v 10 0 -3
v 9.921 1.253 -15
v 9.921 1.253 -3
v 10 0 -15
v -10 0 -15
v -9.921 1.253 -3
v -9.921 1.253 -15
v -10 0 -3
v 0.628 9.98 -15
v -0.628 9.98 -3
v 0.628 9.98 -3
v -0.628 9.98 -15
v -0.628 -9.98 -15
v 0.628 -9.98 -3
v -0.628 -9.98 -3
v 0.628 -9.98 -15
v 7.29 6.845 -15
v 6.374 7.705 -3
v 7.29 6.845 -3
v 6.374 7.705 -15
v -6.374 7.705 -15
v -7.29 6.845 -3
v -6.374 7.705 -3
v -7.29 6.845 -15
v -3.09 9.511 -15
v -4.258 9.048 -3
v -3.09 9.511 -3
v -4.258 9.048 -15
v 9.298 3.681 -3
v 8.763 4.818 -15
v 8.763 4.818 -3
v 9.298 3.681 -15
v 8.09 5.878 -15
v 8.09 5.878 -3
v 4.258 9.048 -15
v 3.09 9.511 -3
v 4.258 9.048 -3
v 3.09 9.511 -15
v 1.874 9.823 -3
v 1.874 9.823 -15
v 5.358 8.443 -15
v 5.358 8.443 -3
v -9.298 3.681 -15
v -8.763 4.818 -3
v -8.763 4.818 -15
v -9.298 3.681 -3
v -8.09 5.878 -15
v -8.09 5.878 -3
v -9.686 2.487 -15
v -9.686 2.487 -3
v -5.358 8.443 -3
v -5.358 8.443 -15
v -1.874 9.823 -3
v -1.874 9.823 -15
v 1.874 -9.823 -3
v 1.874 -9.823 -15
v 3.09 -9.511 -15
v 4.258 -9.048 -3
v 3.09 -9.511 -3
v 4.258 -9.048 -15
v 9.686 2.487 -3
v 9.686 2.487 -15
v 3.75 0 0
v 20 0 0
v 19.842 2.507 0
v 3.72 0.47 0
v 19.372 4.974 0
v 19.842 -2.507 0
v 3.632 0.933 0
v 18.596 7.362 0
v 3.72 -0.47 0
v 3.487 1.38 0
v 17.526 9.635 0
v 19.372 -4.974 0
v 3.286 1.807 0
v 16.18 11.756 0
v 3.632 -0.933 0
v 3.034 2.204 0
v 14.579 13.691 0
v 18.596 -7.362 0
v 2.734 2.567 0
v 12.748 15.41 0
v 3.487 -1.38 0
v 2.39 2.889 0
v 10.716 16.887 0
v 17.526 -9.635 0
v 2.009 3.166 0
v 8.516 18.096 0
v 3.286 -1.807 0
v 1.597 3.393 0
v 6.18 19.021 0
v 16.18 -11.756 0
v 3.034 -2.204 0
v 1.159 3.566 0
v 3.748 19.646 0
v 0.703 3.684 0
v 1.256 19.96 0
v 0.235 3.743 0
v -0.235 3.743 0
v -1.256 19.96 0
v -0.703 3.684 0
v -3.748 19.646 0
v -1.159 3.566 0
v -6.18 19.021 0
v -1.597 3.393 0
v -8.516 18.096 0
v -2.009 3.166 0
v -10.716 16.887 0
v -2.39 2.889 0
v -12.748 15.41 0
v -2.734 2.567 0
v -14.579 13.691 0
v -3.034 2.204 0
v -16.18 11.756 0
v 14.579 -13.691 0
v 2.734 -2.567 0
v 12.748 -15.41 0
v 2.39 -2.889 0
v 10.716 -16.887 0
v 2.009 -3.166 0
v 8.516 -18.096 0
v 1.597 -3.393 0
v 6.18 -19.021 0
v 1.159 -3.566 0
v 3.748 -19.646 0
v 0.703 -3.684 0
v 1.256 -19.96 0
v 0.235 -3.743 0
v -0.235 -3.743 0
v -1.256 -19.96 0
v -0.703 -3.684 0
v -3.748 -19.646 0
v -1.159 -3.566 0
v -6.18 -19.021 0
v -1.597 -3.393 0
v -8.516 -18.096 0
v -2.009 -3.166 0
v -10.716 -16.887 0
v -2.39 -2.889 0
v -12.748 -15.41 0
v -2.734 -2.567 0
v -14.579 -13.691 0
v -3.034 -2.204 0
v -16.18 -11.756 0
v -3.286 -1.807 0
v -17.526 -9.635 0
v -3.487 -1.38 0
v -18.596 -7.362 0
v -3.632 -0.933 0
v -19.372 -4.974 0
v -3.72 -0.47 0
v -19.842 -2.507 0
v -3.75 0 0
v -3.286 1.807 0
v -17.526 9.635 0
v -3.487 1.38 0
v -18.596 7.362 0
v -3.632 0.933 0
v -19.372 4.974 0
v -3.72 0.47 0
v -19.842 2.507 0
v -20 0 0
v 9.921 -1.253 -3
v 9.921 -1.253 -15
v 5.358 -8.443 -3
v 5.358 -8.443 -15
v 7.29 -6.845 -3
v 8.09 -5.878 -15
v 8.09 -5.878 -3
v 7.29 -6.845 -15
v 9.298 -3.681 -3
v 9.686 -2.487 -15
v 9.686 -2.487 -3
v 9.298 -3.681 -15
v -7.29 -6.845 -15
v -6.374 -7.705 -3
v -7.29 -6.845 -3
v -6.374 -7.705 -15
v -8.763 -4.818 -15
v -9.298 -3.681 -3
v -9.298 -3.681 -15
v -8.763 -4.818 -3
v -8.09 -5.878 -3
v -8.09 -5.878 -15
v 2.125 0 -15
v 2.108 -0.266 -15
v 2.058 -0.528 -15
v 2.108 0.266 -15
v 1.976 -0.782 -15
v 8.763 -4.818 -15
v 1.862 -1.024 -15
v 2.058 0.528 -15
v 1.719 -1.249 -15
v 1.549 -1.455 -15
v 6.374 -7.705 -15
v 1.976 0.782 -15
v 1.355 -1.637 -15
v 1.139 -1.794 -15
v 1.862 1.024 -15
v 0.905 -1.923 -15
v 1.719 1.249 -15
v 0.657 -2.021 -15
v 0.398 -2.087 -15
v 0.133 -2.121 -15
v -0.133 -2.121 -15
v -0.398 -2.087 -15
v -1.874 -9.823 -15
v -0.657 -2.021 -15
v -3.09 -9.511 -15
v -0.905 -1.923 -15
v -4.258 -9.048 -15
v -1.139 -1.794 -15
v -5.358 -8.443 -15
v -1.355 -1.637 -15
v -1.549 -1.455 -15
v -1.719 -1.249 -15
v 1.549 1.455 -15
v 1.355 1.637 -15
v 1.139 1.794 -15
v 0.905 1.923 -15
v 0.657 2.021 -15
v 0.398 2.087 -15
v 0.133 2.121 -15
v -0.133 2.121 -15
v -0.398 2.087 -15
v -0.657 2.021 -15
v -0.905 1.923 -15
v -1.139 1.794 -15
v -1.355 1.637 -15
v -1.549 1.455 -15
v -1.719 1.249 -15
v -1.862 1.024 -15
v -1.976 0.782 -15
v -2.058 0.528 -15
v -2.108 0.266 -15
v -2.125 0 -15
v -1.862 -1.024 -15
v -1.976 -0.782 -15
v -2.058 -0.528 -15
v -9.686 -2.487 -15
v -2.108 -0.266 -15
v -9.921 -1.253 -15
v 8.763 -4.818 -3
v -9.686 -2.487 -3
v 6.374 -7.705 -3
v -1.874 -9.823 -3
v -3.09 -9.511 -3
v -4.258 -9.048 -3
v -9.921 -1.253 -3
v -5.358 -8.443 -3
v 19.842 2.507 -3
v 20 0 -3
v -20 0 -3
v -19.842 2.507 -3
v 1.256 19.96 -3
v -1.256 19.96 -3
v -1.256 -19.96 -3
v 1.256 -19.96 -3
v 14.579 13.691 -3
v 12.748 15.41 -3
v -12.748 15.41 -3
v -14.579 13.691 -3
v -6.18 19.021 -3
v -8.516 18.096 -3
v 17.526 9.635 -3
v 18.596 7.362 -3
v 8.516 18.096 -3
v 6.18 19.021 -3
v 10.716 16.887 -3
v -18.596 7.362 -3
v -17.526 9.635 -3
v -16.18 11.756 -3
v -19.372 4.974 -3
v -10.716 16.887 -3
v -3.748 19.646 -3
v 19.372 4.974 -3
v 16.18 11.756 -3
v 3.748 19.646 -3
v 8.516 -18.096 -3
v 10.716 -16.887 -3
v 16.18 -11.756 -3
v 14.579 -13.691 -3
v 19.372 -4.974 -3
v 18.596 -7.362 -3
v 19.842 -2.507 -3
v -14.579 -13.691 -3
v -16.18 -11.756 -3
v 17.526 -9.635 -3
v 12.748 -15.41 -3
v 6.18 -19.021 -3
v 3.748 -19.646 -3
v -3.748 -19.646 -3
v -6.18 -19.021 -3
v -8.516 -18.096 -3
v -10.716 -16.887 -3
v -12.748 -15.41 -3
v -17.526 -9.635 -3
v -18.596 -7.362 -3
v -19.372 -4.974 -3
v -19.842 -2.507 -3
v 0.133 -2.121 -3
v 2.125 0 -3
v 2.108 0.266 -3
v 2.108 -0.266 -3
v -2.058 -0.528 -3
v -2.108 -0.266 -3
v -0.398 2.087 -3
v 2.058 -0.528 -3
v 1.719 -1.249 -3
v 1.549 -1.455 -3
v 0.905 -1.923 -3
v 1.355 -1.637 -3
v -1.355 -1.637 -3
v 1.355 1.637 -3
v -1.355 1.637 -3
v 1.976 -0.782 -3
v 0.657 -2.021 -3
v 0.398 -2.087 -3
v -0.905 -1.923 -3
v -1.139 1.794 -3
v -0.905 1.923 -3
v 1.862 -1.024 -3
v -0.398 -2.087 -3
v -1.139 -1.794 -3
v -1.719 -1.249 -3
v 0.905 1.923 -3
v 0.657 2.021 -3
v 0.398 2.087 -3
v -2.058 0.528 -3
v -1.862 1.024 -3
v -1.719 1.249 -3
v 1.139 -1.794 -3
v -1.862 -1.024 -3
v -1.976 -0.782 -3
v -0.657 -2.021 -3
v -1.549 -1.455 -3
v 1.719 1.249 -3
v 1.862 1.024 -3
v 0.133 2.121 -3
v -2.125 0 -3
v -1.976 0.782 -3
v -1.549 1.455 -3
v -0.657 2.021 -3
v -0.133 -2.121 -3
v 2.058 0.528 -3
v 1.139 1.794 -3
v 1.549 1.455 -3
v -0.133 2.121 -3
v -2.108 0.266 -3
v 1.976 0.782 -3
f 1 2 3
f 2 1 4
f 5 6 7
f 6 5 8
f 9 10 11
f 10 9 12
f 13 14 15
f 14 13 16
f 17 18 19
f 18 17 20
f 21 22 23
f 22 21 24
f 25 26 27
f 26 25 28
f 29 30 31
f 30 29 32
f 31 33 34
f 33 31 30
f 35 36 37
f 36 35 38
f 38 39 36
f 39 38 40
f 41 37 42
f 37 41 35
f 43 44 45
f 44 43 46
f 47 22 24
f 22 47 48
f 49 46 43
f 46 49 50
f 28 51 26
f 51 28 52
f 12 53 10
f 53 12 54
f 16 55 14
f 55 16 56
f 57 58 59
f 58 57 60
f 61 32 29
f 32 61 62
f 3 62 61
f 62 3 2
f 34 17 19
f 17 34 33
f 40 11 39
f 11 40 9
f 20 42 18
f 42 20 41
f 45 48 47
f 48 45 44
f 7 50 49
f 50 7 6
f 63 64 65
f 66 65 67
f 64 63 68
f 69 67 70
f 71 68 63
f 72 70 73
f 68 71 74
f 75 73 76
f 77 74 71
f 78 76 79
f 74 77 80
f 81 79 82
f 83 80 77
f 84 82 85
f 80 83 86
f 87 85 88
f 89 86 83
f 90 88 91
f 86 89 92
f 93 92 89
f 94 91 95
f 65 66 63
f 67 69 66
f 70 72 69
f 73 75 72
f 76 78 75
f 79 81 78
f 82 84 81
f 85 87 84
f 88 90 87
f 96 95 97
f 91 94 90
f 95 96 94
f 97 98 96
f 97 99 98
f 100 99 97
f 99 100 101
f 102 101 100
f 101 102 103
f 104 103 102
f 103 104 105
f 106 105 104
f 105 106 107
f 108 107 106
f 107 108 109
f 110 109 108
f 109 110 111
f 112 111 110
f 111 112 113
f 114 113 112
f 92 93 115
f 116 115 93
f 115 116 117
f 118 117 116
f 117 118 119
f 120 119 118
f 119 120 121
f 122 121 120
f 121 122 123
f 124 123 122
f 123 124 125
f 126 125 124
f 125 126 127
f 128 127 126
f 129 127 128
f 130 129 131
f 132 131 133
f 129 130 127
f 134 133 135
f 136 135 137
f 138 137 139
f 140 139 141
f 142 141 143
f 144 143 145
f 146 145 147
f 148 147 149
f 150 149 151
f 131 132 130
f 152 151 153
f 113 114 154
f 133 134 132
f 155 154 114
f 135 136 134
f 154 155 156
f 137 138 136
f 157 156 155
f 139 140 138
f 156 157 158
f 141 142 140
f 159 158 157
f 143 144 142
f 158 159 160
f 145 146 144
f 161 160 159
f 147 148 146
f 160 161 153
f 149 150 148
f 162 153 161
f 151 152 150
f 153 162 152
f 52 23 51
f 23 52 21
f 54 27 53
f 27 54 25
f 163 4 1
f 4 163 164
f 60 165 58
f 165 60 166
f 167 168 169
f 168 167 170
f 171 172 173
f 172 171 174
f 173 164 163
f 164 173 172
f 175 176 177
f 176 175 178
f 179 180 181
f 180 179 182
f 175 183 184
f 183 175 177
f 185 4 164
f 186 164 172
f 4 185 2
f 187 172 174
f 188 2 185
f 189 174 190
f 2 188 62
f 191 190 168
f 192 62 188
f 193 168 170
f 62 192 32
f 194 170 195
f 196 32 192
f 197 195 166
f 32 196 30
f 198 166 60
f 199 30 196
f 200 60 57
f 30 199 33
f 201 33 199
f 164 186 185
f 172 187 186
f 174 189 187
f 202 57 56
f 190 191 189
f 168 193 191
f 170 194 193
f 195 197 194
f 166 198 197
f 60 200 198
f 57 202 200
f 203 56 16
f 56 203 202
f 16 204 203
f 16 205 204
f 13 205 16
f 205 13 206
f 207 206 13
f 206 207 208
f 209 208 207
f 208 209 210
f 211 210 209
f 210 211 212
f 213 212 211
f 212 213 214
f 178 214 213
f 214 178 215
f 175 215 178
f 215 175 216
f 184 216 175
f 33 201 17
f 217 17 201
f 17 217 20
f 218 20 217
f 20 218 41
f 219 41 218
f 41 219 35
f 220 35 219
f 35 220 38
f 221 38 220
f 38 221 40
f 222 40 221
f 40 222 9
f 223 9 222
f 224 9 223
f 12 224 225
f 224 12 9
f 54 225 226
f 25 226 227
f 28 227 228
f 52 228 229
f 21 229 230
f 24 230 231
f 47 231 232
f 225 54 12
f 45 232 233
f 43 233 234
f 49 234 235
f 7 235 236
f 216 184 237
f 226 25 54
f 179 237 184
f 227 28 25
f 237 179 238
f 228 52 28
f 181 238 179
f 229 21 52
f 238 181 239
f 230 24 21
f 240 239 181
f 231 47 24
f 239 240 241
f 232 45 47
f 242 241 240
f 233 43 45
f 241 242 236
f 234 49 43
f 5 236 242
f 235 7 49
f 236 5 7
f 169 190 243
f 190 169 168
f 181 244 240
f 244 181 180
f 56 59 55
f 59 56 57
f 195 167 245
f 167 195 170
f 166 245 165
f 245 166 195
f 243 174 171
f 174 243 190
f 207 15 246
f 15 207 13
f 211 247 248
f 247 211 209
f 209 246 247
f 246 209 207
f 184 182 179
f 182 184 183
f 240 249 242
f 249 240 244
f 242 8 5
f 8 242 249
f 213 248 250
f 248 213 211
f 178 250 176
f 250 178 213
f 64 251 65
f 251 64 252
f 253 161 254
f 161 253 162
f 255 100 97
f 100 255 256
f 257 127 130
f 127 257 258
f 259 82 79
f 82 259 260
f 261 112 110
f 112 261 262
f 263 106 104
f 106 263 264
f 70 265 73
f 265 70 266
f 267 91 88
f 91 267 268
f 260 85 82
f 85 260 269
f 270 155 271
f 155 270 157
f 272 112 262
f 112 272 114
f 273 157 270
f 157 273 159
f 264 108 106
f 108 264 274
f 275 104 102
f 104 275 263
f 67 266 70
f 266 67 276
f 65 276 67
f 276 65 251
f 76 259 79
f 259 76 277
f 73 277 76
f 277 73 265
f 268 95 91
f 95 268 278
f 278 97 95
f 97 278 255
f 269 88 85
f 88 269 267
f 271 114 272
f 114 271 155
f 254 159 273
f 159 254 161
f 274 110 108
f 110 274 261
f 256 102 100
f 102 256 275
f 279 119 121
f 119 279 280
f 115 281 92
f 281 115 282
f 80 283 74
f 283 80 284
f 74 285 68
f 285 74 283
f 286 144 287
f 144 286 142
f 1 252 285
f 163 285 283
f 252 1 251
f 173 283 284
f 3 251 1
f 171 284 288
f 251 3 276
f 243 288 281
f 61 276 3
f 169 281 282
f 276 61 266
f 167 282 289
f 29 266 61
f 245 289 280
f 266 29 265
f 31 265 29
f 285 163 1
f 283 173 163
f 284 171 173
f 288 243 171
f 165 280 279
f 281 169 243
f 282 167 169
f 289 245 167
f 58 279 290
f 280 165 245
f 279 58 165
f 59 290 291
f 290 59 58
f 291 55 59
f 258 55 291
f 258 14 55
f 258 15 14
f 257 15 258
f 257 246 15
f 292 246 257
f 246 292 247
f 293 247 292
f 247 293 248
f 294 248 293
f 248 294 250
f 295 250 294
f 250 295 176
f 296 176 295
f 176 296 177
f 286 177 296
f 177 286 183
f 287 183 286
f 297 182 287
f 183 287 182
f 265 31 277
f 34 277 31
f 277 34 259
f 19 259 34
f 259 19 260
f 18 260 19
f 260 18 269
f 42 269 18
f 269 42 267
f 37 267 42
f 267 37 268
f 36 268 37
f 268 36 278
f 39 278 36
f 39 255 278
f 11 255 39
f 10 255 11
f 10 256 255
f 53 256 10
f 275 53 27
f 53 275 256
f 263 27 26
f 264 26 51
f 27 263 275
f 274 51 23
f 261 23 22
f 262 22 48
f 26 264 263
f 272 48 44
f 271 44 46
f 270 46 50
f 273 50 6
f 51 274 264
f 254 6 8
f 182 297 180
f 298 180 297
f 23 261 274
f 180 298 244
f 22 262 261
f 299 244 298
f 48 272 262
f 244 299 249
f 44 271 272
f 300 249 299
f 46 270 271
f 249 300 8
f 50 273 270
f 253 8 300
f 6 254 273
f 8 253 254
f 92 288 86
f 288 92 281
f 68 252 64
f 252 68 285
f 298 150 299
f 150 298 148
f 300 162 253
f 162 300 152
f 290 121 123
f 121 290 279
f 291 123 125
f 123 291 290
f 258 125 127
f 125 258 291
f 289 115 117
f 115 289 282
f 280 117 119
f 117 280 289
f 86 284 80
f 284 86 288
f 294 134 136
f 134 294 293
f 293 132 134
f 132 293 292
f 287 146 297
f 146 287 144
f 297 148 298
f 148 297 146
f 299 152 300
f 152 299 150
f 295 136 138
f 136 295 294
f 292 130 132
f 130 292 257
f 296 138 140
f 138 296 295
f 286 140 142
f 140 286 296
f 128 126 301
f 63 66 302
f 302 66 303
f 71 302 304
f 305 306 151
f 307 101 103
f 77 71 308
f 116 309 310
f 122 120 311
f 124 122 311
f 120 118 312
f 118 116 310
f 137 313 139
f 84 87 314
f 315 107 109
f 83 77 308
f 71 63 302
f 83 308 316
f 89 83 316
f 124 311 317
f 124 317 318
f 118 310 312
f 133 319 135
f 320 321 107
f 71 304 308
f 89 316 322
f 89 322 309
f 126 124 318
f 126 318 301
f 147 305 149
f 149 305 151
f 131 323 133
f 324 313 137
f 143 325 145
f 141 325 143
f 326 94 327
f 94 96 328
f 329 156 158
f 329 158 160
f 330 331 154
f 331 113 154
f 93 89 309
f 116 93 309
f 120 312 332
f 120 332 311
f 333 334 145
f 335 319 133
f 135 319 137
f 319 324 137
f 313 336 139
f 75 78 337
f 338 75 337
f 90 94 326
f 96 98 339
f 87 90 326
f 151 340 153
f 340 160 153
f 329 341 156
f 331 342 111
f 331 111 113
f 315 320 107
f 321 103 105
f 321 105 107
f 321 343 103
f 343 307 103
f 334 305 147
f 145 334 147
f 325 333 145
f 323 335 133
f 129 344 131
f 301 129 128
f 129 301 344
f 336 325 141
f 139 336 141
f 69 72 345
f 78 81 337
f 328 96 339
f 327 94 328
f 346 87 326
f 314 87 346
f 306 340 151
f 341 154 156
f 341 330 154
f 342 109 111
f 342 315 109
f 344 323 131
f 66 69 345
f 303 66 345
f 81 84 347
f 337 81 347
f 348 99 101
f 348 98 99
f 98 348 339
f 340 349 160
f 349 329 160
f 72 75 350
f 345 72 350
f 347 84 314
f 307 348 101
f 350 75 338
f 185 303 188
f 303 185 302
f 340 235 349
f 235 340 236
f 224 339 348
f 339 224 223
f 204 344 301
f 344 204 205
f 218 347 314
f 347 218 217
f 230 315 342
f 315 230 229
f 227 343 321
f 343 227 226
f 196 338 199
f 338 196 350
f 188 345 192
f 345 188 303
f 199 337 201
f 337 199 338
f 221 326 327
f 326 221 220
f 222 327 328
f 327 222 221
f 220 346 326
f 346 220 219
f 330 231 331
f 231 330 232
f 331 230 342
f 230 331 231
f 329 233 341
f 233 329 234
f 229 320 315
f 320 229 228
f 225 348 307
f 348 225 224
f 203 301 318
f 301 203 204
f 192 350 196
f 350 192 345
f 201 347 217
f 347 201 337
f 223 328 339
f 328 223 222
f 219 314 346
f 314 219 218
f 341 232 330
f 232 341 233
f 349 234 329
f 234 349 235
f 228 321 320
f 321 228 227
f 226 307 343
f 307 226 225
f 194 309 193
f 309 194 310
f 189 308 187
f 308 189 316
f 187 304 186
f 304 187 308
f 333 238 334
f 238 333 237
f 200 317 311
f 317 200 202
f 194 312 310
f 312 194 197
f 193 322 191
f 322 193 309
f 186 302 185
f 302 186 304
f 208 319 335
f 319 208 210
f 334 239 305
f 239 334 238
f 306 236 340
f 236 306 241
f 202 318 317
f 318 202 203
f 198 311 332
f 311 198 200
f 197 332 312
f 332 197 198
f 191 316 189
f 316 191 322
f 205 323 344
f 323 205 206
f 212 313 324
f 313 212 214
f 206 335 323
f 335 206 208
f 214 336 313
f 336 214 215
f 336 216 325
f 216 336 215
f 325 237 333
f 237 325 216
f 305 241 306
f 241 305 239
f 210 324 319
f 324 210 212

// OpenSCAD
$fn = 50;


difference() {
	union() {
		translate(v = [0, 0, -15.0000000000]) {
			cylinder(h = 15, r = 10.0000000000);
		}
		translate(v = [0, 0, -3.0000000000]) {
			cylinder(h = 3, r = 20.0000000000);
		}
	}
	union() {
		translate(v = [0, 0, 0]) {
			rotate(a = [0, 0, 0]) {
				difference() {
					union() {
						#translate(v = [0, 0, -15.0000000000]) {
							cylinder(h = 15, r = 2.0000000000);
						}
						#translate(v = [0, 0, -3]) {
							cylinder(h = 3, r1 = 2.1250000000, r2 = 3.7500000000);
						}
						#translate(v = [0, 0, -15.0000000000]) {
							cylinder(h = 15, r = 2.1250000000);
						}
						#translate(v = [0, 0, -15.0000000000]) {
							cylinder(h = 15, r = 2.0000000000);
						}
					}
					union();
				}
			}
		}
	}
}
